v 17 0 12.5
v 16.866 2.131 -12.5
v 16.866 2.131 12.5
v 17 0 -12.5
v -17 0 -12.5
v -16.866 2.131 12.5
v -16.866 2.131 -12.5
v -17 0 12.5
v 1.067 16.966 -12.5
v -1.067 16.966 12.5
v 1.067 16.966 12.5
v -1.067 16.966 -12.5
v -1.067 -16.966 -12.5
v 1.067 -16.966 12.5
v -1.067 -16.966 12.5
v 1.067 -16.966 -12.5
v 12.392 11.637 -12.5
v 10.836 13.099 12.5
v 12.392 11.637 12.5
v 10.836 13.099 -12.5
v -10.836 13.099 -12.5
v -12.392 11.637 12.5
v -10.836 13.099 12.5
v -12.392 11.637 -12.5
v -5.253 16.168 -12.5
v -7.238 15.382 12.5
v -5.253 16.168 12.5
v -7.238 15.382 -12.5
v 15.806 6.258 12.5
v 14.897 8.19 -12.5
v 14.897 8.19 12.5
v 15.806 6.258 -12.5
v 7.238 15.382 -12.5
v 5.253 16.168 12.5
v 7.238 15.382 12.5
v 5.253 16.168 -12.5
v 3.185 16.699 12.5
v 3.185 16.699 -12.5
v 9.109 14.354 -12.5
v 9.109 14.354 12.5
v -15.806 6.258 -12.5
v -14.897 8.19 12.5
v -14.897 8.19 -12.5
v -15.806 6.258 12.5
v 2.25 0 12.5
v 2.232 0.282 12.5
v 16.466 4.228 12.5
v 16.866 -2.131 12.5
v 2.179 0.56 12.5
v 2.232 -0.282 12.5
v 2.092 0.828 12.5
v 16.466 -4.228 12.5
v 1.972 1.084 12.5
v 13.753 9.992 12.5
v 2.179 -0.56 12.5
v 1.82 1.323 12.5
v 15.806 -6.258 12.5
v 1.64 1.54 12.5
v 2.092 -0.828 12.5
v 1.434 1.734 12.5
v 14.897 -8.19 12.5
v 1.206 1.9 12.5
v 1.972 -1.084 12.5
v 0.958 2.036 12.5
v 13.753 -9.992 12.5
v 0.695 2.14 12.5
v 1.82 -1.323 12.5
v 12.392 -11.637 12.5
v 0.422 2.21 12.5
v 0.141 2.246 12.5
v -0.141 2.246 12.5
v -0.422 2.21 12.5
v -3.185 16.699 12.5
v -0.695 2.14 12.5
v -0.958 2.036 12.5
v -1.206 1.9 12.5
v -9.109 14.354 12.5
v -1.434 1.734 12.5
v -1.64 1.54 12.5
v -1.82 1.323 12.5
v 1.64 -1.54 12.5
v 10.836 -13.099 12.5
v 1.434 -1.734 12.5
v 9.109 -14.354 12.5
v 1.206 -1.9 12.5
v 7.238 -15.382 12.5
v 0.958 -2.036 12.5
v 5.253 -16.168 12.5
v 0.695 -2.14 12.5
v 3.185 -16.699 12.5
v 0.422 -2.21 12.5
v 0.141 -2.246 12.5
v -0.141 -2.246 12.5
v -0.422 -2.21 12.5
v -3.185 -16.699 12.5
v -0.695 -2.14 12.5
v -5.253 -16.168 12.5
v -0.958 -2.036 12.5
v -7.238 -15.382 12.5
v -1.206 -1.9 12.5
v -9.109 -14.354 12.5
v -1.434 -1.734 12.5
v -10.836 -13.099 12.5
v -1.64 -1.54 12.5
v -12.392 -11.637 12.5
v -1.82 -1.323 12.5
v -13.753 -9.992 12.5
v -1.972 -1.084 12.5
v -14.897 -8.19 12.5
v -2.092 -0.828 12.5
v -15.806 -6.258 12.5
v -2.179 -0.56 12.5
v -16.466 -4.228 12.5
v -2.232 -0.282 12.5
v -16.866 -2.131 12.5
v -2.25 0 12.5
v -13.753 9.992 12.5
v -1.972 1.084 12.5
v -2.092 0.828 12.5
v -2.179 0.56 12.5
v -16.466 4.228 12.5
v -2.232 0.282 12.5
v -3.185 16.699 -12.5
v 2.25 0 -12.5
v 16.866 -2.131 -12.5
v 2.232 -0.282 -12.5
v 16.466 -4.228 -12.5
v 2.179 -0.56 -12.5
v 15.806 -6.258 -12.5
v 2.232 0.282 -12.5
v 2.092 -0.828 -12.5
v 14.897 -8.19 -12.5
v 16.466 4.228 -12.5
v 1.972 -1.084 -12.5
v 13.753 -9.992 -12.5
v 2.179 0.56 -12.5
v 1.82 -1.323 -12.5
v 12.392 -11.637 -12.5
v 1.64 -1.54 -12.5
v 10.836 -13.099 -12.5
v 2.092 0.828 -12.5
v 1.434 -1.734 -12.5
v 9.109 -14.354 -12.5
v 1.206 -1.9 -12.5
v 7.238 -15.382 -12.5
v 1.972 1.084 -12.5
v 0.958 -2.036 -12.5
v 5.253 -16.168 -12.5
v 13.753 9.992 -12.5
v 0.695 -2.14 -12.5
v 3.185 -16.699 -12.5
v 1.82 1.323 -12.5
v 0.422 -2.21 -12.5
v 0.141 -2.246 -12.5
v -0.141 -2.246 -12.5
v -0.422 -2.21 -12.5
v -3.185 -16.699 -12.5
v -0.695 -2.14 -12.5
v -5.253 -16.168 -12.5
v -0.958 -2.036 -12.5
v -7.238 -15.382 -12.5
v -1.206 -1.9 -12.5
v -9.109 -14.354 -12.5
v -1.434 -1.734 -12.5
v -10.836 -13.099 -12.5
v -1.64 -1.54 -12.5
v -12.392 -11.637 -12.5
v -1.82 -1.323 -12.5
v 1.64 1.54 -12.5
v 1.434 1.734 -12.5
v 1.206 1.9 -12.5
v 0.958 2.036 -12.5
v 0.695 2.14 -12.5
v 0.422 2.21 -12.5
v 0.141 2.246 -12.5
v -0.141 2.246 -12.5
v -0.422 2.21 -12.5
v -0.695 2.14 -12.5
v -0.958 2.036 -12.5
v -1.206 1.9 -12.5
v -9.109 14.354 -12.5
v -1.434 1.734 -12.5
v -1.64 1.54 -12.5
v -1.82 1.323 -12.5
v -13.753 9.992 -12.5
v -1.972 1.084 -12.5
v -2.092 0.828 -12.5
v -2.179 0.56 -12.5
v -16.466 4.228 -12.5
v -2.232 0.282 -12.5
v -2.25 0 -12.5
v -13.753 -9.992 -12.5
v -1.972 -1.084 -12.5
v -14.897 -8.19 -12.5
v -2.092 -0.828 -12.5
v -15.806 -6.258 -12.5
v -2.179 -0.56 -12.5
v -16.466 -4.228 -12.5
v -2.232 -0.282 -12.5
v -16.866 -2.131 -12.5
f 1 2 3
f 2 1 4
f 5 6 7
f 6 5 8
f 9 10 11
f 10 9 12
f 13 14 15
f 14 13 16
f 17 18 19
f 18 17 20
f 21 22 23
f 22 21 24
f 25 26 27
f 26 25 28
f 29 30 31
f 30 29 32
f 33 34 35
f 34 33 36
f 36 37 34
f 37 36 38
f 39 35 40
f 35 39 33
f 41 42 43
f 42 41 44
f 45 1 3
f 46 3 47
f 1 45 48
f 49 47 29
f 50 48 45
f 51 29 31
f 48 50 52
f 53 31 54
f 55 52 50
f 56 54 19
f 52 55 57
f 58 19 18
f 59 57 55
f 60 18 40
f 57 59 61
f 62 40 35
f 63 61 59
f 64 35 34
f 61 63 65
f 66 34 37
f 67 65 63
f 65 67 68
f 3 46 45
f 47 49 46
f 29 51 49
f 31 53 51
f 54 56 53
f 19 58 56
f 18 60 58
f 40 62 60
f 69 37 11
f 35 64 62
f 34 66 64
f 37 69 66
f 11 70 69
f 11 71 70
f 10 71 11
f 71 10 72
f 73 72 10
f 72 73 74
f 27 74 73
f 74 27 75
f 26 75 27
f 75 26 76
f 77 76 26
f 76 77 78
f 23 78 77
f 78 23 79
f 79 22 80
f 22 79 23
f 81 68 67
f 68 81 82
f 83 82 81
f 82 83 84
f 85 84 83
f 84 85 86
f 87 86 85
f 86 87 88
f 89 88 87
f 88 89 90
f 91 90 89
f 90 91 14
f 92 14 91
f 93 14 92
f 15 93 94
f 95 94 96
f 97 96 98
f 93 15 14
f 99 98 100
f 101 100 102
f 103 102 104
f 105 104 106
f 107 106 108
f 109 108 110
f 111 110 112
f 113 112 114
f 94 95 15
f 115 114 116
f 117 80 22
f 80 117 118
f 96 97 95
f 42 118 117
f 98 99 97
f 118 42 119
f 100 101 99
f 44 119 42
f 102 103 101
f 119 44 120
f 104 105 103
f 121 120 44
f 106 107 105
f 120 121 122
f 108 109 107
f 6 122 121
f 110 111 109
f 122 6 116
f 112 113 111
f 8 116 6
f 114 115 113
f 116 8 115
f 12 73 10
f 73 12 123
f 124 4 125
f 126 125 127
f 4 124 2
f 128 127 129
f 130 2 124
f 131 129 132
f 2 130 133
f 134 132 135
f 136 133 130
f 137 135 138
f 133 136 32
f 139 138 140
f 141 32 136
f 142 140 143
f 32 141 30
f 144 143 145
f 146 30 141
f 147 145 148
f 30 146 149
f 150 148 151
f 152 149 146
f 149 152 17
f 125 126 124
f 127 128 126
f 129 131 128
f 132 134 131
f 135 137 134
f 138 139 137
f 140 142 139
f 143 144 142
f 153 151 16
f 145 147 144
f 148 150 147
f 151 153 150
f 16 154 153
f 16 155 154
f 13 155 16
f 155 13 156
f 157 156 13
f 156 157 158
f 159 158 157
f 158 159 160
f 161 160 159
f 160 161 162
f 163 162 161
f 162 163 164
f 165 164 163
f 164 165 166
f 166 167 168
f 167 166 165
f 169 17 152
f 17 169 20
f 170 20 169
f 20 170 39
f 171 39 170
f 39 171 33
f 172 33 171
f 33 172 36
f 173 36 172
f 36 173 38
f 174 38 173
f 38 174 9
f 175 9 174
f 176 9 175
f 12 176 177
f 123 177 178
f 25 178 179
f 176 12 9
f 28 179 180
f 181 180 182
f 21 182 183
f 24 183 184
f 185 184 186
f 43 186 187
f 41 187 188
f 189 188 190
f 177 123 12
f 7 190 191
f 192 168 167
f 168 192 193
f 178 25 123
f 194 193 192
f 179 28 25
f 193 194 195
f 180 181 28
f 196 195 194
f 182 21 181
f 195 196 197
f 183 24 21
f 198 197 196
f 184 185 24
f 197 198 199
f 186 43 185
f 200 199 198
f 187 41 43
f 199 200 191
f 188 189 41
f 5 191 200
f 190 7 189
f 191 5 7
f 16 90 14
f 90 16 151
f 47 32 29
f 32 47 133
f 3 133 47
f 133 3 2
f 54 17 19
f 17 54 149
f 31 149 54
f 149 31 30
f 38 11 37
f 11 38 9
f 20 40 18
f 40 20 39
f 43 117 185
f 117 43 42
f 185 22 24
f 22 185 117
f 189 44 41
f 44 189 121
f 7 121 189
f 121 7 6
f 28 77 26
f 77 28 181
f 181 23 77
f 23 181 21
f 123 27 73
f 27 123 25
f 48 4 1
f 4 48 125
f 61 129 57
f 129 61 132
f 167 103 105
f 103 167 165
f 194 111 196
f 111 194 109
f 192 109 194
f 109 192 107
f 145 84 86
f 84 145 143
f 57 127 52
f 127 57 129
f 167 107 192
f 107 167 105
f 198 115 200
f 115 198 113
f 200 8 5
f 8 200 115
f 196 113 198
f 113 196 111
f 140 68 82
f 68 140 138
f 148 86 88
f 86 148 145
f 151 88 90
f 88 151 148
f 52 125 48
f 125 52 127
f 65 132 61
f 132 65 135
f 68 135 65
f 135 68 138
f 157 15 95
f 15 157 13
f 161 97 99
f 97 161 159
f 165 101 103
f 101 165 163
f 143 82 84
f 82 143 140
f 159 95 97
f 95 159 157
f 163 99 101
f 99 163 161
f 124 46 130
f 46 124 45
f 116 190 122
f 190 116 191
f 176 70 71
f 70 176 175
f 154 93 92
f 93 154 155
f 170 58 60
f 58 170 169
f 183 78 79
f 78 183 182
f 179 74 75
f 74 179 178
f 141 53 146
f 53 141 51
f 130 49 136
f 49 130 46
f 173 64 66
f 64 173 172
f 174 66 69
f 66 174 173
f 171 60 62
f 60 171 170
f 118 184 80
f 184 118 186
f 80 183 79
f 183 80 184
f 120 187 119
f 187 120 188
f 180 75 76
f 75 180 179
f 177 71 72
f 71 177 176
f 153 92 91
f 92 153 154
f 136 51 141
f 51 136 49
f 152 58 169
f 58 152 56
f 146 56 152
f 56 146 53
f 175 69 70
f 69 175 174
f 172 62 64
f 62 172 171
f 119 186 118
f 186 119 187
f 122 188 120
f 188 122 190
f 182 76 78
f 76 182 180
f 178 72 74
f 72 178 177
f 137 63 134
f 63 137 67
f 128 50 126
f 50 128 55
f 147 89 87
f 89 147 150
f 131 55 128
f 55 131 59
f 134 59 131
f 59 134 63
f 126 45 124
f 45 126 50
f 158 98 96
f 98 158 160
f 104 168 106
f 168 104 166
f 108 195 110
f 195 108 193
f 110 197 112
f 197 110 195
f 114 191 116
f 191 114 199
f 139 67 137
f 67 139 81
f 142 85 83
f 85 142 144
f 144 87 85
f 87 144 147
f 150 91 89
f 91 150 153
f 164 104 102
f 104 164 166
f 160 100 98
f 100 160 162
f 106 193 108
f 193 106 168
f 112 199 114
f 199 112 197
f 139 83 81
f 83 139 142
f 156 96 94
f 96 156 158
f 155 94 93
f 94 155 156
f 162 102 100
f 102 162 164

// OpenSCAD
$fn = 50;


difference() {
	union() {
		translate(v = [0, 0, -12.5000000000]) {
			cylinder(h = 25, r = 17.0000000000);
		}
	}
	union() {
		translate(v = [0, 0, -100.0000000000]) {
			cylinder(h = 200, r = 2.2500000000);
		}
	}
}
